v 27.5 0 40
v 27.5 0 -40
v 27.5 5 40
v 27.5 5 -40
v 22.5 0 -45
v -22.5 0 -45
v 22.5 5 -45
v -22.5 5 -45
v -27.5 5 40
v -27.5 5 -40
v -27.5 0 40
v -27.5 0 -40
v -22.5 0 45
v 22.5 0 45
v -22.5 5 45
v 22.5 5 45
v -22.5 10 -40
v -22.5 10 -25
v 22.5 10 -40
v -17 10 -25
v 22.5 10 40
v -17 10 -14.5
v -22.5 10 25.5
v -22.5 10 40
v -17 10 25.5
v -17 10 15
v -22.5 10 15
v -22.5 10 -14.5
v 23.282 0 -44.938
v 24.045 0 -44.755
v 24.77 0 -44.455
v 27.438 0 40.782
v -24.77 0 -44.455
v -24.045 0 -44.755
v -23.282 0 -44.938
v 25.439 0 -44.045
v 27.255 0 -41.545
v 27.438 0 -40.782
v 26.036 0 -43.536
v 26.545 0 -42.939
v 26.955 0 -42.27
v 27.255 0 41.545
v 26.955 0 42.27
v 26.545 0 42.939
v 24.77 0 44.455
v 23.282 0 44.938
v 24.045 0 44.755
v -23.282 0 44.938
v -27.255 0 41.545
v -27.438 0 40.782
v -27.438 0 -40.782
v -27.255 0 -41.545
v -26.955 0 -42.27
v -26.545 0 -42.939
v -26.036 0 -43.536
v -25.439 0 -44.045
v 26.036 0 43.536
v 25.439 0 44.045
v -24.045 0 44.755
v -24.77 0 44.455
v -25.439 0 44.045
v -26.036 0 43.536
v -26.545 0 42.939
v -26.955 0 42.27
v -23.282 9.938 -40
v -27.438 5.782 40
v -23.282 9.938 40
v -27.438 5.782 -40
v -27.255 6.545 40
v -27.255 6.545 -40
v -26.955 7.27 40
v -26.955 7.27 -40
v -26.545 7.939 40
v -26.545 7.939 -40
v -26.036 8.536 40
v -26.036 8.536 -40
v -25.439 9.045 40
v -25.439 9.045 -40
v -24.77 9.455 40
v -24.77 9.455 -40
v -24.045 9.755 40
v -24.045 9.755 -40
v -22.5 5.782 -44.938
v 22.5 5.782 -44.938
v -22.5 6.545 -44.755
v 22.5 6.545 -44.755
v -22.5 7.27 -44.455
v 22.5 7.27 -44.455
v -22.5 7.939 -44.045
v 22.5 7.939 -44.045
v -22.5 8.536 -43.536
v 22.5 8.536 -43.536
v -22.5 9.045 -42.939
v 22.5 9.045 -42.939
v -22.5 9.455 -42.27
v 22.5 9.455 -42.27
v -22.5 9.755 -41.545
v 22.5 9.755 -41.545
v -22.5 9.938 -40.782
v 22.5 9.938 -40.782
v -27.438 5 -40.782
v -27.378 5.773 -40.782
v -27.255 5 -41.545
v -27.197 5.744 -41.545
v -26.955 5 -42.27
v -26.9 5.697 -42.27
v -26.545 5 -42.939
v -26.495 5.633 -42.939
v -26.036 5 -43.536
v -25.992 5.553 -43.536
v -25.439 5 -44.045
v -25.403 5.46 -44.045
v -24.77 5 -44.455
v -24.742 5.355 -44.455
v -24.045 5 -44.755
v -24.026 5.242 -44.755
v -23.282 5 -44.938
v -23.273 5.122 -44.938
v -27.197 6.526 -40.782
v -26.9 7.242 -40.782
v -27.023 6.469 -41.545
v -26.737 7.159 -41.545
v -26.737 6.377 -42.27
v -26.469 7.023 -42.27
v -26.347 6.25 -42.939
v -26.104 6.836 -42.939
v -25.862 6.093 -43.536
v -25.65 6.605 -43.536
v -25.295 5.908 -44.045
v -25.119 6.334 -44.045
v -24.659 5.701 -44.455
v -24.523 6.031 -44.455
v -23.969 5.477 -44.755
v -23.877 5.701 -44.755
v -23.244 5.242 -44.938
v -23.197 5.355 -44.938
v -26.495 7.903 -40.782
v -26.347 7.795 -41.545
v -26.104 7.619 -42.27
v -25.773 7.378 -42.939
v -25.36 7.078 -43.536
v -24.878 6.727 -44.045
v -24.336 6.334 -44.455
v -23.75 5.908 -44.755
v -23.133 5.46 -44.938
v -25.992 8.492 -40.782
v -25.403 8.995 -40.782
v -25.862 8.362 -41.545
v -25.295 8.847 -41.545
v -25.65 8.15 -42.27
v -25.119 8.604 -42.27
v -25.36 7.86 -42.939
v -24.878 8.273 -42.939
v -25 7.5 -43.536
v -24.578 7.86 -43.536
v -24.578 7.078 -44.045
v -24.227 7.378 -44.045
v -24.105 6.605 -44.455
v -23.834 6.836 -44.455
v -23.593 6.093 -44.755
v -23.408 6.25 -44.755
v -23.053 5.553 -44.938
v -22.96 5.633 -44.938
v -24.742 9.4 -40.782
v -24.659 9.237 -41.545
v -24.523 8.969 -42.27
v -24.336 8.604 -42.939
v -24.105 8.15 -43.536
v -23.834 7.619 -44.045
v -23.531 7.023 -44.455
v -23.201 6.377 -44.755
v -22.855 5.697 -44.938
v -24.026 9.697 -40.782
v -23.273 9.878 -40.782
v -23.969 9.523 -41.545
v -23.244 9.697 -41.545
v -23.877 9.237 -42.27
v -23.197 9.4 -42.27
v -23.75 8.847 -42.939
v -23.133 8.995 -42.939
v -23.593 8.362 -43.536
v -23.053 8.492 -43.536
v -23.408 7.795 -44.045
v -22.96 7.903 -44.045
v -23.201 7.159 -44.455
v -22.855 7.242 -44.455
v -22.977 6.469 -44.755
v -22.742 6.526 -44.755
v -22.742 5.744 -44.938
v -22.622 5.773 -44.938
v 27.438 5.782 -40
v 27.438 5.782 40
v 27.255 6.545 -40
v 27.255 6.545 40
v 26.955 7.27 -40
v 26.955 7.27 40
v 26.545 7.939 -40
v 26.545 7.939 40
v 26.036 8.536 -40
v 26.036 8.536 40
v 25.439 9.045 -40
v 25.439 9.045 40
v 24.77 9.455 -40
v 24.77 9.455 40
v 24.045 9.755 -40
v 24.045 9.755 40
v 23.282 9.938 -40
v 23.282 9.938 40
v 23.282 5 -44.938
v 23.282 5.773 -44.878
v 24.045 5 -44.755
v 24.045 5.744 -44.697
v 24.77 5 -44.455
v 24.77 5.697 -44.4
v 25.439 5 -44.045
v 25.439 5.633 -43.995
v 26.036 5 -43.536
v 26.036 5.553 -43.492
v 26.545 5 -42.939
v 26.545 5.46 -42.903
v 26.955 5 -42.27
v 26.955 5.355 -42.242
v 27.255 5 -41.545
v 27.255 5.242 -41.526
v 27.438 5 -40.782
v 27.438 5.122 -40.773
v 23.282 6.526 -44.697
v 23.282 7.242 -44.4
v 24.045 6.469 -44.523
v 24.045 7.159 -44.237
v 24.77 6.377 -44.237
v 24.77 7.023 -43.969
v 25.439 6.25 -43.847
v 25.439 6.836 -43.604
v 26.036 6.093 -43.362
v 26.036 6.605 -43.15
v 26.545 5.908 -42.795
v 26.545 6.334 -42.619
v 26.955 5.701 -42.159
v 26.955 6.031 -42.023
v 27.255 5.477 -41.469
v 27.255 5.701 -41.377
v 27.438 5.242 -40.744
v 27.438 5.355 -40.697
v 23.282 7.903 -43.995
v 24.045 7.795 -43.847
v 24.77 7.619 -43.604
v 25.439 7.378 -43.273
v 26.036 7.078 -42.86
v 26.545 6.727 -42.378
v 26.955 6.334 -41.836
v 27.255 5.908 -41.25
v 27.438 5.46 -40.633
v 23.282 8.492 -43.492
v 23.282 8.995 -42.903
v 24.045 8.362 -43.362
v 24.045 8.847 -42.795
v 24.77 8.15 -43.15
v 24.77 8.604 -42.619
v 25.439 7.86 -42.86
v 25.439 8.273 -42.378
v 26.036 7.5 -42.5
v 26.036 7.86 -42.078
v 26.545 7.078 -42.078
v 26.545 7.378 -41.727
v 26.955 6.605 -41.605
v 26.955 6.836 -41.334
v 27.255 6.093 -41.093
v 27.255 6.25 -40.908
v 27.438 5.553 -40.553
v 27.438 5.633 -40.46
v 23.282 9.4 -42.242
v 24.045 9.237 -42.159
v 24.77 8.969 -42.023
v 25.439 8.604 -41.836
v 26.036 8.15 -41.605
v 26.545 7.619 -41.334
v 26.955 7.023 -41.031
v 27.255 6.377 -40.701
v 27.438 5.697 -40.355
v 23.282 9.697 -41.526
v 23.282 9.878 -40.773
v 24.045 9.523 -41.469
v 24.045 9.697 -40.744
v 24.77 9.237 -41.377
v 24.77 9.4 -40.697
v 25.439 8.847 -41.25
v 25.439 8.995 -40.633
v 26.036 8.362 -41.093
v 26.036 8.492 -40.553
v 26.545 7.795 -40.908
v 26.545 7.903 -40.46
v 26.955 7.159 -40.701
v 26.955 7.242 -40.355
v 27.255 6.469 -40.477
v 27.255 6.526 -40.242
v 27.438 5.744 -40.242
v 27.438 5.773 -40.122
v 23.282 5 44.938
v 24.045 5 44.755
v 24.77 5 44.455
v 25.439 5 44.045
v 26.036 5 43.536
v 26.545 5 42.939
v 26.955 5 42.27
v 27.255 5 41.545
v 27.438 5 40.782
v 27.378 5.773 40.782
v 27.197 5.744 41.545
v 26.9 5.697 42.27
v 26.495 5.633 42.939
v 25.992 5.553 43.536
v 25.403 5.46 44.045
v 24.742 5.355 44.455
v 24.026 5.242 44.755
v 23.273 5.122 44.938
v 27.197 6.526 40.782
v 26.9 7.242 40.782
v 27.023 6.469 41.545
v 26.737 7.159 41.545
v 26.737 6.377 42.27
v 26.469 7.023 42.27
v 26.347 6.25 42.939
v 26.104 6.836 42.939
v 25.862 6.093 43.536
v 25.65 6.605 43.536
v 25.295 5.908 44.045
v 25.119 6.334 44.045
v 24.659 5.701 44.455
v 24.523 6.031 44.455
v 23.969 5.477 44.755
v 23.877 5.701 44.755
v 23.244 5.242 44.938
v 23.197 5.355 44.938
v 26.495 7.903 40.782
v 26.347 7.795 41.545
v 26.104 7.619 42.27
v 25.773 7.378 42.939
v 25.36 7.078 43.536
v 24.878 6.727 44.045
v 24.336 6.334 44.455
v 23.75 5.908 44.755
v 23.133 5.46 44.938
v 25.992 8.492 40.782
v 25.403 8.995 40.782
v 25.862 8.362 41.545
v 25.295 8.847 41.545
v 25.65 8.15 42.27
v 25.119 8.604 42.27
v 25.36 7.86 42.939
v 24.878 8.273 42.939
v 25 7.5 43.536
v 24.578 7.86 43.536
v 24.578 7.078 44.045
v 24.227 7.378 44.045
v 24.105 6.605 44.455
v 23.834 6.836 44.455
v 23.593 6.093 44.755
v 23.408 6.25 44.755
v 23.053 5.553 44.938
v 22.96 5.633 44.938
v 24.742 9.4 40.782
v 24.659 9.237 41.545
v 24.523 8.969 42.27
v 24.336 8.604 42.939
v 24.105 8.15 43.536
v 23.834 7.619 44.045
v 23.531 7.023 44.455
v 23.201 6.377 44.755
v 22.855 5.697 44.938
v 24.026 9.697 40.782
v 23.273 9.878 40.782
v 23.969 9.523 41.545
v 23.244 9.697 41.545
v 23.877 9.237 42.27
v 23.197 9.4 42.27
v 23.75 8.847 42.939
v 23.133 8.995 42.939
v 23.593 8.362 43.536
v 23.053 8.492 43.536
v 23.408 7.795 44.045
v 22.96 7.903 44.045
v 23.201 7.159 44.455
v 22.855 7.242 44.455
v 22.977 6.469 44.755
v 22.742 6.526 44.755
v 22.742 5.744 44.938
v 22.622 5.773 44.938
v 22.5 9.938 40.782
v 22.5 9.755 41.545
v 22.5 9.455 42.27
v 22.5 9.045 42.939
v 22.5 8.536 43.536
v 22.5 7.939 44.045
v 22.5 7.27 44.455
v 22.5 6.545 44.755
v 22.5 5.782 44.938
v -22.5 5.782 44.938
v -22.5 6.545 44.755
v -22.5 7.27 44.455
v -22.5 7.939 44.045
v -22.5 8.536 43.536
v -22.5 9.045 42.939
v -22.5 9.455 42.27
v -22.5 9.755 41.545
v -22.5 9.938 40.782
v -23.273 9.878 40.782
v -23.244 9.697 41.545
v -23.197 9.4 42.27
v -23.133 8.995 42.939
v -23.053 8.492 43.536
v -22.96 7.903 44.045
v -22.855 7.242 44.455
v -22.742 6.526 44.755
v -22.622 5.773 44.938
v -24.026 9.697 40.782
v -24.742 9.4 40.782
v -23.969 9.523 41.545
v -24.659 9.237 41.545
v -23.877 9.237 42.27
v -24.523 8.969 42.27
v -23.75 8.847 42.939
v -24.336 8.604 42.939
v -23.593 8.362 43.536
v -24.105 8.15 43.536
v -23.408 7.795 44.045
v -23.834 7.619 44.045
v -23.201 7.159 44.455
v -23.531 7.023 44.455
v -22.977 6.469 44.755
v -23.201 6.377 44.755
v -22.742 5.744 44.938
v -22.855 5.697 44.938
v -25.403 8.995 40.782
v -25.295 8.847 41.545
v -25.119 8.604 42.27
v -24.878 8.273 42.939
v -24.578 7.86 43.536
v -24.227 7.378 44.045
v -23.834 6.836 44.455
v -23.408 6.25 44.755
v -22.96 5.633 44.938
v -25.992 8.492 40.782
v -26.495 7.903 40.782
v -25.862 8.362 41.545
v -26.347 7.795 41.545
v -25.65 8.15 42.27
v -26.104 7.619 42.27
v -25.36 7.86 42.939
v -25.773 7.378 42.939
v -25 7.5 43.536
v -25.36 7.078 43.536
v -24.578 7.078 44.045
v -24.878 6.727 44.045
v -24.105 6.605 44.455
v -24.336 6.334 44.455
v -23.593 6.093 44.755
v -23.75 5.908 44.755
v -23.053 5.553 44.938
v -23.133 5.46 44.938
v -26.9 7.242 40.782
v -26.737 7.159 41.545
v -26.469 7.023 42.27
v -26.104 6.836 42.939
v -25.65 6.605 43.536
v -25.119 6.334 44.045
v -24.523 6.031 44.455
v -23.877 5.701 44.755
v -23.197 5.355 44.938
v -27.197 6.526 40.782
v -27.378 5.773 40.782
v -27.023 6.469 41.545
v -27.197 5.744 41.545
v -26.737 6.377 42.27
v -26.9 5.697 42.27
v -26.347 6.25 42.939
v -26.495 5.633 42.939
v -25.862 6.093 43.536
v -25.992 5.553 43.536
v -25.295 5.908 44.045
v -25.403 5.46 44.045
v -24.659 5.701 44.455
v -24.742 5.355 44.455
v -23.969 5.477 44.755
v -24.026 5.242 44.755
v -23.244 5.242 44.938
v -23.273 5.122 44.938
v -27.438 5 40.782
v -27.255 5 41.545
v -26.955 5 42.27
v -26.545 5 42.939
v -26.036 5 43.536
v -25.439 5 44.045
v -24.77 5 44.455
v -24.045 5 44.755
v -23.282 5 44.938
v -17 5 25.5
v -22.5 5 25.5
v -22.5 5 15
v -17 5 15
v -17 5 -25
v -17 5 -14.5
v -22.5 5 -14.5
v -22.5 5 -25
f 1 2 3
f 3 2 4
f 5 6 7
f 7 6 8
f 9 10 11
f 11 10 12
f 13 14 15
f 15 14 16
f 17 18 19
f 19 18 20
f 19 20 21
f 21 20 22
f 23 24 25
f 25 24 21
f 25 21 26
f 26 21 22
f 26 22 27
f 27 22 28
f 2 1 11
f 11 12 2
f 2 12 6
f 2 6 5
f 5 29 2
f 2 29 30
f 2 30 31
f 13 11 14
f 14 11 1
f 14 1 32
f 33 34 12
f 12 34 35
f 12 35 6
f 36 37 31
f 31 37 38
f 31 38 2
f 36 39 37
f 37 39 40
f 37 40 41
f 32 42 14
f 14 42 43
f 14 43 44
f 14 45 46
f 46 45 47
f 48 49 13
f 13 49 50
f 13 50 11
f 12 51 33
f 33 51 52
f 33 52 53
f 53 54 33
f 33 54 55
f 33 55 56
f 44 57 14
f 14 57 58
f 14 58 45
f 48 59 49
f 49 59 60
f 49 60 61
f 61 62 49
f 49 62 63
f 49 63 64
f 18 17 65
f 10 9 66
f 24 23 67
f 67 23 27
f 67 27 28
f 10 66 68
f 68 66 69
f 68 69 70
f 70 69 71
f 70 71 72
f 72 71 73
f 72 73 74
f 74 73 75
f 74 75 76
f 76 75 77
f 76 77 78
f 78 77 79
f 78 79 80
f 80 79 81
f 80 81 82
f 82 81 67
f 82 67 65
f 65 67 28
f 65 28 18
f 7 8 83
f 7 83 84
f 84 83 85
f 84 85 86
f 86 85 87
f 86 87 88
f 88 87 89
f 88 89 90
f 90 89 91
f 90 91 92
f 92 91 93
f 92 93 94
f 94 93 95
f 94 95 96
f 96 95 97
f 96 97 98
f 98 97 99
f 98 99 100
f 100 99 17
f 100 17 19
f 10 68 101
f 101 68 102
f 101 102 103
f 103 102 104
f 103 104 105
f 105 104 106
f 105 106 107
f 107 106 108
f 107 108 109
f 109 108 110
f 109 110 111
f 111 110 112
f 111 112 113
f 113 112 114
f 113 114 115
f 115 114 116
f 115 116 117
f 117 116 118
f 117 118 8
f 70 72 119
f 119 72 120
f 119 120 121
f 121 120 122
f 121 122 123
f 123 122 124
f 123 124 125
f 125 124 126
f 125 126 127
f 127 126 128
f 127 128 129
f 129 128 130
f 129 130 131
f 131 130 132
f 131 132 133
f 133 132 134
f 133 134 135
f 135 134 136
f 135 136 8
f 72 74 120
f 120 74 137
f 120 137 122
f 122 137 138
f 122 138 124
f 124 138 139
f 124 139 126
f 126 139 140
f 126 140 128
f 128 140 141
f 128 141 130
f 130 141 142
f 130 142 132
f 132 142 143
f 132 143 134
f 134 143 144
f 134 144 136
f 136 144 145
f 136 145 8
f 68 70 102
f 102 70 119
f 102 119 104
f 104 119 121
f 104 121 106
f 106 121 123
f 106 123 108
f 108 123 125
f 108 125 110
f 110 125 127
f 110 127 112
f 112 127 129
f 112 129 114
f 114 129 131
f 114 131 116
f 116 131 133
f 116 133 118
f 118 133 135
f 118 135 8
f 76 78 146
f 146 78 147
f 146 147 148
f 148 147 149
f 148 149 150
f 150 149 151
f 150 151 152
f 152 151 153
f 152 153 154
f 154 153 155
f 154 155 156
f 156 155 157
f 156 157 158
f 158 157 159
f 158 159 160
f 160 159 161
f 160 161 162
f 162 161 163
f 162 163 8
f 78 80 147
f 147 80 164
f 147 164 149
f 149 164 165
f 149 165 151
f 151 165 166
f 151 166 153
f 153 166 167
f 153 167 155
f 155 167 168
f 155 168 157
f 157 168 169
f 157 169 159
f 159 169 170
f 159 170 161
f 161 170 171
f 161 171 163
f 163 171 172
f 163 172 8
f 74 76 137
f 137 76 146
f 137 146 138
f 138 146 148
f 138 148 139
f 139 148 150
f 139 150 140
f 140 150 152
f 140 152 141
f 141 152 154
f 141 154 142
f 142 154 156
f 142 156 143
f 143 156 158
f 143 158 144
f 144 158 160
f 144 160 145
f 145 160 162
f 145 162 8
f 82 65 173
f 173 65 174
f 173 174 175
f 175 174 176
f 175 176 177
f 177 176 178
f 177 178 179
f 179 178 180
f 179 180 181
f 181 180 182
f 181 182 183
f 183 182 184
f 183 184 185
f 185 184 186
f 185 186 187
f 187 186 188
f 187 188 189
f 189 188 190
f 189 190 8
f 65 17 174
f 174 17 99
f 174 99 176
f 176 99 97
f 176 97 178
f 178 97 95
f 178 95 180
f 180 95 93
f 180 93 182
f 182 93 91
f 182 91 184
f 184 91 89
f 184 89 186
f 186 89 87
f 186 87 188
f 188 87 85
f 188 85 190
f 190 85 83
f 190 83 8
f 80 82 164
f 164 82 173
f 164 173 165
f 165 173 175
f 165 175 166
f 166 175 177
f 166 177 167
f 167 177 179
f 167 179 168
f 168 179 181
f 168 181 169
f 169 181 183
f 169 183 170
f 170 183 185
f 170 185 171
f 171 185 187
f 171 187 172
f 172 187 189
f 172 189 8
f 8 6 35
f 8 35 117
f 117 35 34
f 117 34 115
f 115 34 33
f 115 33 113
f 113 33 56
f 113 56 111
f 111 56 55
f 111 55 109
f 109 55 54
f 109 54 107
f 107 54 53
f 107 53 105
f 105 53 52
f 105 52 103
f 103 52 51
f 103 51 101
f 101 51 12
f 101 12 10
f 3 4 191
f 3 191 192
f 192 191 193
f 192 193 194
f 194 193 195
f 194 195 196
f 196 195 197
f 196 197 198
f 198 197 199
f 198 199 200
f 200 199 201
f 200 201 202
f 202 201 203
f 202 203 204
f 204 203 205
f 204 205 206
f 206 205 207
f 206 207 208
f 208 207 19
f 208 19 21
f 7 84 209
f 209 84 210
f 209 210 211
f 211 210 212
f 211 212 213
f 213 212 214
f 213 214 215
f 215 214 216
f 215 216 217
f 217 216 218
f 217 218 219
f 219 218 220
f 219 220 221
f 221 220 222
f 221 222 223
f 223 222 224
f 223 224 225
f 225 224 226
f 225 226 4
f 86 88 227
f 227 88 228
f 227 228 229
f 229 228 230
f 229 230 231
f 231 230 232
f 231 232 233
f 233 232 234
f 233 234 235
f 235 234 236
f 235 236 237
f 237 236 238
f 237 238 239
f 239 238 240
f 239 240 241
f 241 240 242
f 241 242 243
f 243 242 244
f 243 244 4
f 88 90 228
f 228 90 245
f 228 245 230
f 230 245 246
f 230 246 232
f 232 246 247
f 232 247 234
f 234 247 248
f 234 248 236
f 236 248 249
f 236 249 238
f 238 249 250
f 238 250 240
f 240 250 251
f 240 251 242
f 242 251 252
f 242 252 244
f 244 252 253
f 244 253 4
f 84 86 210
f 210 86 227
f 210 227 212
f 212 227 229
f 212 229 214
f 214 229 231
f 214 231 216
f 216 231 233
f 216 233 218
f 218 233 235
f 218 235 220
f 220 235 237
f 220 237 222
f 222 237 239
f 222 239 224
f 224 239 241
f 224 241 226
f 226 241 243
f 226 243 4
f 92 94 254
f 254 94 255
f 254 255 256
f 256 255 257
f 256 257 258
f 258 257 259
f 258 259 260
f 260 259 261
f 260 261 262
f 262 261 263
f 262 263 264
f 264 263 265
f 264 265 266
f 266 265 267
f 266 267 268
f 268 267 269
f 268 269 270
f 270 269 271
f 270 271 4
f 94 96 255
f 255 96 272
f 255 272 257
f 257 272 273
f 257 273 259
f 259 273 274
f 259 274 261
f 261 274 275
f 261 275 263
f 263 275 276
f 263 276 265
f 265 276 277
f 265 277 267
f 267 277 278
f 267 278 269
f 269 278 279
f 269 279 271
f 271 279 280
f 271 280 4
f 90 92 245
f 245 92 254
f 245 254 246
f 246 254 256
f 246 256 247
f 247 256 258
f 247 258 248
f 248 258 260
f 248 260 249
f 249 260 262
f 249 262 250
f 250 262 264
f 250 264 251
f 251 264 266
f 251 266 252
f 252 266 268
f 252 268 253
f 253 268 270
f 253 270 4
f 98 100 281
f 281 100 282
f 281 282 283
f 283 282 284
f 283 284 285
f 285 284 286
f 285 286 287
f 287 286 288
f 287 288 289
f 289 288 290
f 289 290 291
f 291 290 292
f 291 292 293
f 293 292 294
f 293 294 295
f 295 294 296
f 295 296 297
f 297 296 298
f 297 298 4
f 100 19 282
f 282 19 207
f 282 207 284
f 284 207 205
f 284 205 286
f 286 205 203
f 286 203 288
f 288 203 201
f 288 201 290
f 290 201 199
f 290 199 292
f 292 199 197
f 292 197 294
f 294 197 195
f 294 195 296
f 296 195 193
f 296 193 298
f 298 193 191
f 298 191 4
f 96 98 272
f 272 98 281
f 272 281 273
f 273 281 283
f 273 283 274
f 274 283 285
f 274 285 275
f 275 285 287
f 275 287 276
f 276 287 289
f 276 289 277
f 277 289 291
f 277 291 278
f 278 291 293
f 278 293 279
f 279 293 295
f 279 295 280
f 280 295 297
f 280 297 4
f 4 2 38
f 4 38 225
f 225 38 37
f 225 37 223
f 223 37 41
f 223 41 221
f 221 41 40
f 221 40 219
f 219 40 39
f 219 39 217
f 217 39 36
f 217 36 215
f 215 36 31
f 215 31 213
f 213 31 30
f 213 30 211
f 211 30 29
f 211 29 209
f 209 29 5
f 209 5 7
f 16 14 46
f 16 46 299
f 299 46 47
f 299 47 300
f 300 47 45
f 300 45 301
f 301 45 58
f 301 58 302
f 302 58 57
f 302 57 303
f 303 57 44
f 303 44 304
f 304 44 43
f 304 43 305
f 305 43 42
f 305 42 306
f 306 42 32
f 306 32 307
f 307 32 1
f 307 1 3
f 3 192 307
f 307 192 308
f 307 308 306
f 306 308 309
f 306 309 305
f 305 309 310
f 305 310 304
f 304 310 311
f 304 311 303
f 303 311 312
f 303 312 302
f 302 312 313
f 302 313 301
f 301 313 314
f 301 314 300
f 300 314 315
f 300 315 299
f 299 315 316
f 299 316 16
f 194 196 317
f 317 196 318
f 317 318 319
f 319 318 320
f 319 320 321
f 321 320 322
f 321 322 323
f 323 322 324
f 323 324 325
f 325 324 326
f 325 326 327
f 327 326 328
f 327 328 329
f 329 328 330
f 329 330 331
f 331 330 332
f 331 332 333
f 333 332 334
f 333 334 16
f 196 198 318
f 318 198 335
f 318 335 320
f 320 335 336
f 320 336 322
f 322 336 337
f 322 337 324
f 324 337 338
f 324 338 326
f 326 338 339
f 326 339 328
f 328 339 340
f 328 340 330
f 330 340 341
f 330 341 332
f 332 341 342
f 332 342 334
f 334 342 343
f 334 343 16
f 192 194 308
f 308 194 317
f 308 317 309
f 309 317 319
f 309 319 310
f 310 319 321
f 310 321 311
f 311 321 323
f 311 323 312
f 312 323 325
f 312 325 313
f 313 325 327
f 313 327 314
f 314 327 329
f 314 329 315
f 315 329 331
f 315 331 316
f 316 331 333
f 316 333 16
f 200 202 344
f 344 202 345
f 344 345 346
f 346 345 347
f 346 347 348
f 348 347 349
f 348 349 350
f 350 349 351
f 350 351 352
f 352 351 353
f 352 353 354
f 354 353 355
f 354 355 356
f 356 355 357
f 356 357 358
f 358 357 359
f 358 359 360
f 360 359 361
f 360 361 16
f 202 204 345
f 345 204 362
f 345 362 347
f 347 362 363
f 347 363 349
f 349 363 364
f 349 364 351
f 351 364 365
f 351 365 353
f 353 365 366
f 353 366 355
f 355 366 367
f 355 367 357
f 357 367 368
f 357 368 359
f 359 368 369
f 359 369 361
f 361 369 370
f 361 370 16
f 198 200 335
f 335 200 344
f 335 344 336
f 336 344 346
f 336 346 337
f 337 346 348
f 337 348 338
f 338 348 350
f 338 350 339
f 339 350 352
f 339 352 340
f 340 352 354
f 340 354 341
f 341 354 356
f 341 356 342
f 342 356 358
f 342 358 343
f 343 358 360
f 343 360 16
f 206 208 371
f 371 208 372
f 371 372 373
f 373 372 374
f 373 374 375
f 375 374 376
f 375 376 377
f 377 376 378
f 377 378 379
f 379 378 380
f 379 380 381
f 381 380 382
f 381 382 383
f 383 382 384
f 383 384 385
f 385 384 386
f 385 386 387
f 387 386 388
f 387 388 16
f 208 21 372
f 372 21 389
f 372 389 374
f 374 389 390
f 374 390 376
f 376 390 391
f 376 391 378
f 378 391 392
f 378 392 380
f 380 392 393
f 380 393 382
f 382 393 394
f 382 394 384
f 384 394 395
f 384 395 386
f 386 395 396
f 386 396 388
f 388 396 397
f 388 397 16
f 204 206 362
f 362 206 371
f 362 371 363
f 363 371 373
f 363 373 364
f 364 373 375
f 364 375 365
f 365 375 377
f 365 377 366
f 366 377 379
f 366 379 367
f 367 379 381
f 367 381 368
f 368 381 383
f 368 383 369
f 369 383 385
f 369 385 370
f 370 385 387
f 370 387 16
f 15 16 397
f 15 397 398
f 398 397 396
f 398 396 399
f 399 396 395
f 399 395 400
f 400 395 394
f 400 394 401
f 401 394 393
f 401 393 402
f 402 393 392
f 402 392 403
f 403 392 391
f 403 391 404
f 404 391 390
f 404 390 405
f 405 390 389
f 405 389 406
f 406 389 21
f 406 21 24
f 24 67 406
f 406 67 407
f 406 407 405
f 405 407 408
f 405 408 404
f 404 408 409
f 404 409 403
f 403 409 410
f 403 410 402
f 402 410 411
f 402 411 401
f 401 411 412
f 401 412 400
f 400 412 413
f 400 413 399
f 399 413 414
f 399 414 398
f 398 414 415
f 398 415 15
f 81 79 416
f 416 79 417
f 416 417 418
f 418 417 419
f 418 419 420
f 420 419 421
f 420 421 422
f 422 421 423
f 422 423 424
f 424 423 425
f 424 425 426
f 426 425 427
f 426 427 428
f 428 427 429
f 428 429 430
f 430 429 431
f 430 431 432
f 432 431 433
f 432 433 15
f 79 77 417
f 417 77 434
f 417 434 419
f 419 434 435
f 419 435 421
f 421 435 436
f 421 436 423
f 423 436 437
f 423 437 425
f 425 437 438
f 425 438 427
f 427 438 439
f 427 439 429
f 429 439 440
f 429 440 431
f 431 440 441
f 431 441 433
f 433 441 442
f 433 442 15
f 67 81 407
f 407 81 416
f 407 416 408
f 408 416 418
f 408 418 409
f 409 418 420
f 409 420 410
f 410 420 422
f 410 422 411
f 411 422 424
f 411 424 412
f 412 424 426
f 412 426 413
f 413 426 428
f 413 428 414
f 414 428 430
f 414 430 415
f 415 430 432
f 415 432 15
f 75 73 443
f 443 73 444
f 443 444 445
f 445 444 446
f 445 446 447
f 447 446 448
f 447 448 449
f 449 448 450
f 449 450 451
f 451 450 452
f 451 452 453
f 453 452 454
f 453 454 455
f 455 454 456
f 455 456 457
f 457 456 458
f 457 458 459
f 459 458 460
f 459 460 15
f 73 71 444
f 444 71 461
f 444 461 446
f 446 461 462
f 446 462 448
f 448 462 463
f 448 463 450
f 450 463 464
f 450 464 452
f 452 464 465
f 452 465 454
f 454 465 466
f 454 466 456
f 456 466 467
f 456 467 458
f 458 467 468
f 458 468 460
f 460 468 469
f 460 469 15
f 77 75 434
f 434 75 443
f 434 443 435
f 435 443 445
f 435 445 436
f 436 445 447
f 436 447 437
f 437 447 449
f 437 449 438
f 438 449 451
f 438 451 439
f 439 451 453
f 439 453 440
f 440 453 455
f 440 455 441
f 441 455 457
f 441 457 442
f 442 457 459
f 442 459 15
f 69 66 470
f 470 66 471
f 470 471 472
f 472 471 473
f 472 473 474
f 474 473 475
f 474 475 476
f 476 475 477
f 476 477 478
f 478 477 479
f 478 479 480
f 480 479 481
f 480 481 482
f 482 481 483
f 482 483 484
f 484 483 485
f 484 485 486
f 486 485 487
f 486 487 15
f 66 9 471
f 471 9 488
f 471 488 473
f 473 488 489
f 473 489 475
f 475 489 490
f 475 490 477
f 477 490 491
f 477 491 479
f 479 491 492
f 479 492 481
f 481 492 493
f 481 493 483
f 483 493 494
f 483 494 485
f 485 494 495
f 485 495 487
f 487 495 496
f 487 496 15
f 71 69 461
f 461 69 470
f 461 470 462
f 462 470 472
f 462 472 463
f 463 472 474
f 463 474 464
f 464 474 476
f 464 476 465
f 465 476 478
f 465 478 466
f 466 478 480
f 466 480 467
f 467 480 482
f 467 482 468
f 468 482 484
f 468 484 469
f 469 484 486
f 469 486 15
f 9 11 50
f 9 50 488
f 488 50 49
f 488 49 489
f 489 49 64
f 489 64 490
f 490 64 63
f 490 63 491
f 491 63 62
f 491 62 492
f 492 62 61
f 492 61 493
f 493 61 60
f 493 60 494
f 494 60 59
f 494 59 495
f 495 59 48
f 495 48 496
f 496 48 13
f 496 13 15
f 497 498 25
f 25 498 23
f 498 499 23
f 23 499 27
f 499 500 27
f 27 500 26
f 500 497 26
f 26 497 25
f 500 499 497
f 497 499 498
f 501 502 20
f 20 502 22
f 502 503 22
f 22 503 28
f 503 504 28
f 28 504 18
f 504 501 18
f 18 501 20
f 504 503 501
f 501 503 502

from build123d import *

# Parameters (mm, degrees)
SKETCH_2_W          = 55
SKETCH_2_H          = 90
EXTRUDE_1_DEPTH     = 10
FILLET_1_R          = 5
FILLET_2_R          = 5
FILLET_3_R          = 5
FILLET_4_R          = 5
SKETCH_3_W          = 5.5
SKETCH_3_H          = 10.5
CUT_EXTRUDE_1_DEPTH = 5


with BuildPart() as part:
    # 草图2 → 凸台-拉伸1 (new body)
    with BuildSketch(Plane(origin=(0, 0, 0), x_dir=(1, 0, 0), z_dir=(0, 1, 0))):
        Rectangle(SKETCH_2_W, SKETCH_2_H)
    extrude(amount=EXTRUDE_1_DEPTH)

    # 圆角1
    fillet_1_edges = [part.edges().sort_by_distance(p)[0] for p in [
        (-27.5, 10, 0),
    ]]
    fillet(fillet_1_edges, radius=FILLET_1_R)

    # 圆角2
    fillet_2_edges = [part.edges().sort_by_distance(p)[0] for p in [
        (-27.5, 2.5, -45),
        (-26.035533906, 8.535533906, -45),
        (2.5, 10, -45),
    ]]
    fillet(fillet_2_edges, radius=FILLET_2_R)

    # 圆角3
    fillet_3_edges = [part.edges().sort_by_distance(p)[0] for p in [
        (27.5, 2.5, -45),
        (27.5, 8.535533906, -43.535533906),
        (27.5, 10, 2.5),
    ]]
    fillet(fillet_3_edges, radius=FILLET_3_R)

    # 圆角4
    fillet_4_edges = [part.edges().sort_by_distance(p)[0] for p in [
        (0, 10, 45),
        (-27.5, 2.5, 45),
        (-26.035533906, 8.535533906, 45),
        (27.5, 2.5, 45),
        (26.035533906, 8.535533906, 45),
    ]]
    fillet(fillet_4_edges, radius=FILLET_4_R)

    # 草图3 → 切除-拉伸1 (cut)
    with BuildSketch(Plane(origin=(0, 10, 0), x_dir=(1, 0, 0), z_dir=(0, 1, 0))):
        with Locations((-19.75, 19.75)):
            Rectangle(SKETCH_3_W, SKETCH_3_H)
        with Locations((-19.75, -20.25)):
            Rectangle(SKETCH_3_W, SKETCH_3_H)
    extrude(amount=-CUT_EXTRUDE_1_DEPTH, mode=Mode.SUBTRACT)


solid = part.part
